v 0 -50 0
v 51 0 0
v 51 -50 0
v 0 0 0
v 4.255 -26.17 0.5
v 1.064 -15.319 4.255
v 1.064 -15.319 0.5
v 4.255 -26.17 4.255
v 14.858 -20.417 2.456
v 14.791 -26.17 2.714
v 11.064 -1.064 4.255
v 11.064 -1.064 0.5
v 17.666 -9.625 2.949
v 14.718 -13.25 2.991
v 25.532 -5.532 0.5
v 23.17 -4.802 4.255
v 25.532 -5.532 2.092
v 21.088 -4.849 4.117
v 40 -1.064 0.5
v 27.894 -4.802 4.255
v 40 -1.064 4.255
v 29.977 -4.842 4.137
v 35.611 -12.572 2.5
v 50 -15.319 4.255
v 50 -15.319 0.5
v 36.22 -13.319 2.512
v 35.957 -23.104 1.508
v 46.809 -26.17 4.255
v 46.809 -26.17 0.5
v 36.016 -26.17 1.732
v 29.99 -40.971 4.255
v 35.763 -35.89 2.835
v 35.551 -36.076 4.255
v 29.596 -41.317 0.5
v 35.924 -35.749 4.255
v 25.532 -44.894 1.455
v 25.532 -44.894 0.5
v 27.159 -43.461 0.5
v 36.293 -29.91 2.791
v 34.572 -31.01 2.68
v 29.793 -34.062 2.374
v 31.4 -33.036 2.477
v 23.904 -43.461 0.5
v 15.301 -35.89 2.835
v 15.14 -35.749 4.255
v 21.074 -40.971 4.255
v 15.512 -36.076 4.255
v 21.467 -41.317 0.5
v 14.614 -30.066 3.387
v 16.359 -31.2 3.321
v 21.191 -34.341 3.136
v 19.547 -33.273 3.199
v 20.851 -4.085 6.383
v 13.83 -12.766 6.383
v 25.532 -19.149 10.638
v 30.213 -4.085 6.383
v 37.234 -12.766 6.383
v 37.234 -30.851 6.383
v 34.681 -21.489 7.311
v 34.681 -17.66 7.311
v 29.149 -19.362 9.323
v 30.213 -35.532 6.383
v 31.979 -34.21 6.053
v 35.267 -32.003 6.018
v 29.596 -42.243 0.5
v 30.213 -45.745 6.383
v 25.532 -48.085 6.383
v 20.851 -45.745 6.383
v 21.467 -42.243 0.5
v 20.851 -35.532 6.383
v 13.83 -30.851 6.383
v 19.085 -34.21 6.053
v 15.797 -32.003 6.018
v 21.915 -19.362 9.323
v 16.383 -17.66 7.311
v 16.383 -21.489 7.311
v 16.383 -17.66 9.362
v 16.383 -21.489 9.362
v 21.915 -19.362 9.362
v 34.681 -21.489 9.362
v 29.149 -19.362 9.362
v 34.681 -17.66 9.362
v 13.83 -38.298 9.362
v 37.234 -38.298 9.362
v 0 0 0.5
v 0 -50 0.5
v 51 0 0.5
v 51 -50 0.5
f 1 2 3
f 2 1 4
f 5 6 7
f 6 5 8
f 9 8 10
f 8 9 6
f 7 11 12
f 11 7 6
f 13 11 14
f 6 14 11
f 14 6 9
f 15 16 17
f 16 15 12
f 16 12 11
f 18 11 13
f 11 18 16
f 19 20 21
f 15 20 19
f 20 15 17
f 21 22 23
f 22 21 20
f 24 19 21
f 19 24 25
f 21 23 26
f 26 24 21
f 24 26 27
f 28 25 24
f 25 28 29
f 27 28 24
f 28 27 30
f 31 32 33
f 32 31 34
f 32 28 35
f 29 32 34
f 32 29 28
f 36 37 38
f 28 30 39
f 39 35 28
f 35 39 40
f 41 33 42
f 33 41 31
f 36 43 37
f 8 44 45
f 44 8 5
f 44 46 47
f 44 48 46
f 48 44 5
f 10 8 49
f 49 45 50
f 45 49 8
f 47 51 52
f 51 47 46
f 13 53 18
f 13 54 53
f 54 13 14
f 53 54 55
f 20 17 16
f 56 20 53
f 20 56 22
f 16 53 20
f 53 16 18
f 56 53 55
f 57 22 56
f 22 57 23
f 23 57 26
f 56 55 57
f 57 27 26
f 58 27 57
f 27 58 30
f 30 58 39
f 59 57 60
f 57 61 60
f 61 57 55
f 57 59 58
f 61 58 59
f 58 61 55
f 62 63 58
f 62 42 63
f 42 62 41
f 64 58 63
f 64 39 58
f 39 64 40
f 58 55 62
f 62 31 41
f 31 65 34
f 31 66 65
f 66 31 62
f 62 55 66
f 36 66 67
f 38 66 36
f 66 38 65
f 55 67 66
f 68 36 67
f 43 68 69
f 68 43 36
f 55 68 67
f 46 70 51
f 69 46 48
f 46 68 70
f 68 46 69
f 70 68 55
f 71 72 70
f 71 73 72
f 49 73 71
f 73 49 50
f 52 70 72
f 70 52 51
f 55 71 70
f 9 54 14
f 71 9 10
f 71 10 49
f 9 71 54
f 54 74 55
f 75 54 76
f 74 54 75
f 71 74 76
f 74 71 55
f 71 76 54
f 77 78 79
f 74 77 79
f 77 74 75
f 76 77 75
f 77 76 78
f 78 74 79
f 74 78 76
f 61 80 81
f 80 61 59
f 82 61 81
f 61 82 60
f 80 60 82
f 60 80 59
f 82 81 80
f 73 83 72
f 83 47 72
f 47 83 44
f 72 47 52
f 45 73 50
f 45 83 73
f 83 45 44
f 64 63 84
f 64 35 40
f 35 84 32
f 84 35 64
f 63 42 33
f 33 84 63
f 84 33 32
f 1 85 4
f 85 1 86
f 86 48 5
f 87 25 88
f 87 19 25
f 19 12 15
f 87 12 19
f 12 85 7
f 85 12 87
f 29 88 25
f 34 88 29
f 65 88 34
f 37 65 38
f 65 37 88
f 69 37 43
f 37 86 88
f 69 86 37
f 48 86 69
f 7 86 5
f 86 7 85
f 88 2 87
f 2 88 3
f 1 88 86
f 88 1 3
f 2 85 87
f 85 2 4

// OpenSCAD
baseDepth = 100;
heartDepth = -baseDepth * 0.9;
headEdgeDepth = 50;
headCenterDepth = headEdgeDepth + 100;
eyeLow = headEdgeDepth + (headCenterDepth - headEdgeDepth) * 0.7;
eyeHigh = eyeLow;
tuskLow = headEdgeDepth * 0.7;
tuskHigh = eyeHigh;
targetWidth = 50;
maxX = 1175;
scaleFactor = targetWidth/maxX;

module triangle (x1, y1, x2, y2) {
    polyhedron(points = [
      [x1, y1, 0],
      [x2, y2, 0],
      [715,-615,0],
      [x1, y1, baseDepth],
      [x2, y2, baseDepth],
      [715,-615,baseDepth + heartDepth],
    ], faces = [
      [0, 1, 2], // bottom
      [0, 3, 4, 1],
      [0, 2, 5, 3],
      [1, 4, 5, 2],
      [3, 5, 4], // top
    ]);
};

module graphileheart() {
    triangle(100,-615,25,-360);
    triangle(25,-360,260,-25);
    triangle(260,-25,600,-130);
    triangle(600,-130,940,-25);
    triangle(940,-25,1175,-360);
    triangle(1175,-360,1100,-615);
    triangle(1100,-615,600,-1055);
    triangle(600,-1055,100,-615);
}
translate([0, -50, 0])
cube([51,50,0.5],false);


module etriangle (x1, y1, x2, y2) {
    polyhedron(points = [
      [x1, y1, baseDepth + headEdgeDepth],
      [x2, y2, baseDepth + headEdgeDepth],
      [600,-450,baseDepth - 1000],
      [600,-450,baseDepth + headCenterDepth]
    ], faces = [
      [0, 2, 1], // bottom
      [0, 1, 3], // top
      [0, 3, 2],
      [1, 2, 3]
    ]);
};

module elephanthead() {
    etriangle(325,-300,490,-96);
    etriangle(490,-96,710,-96);
    etriangle(710,-96,875,-300);

    etriangle(875,-300,875,-725);

    etriangle(875,-725,710,-835);
    etriangle(710,-835,710,-1075);
    etriangle(710,-1075,600,-1130);
    etriangle(600,-1130,490,-1075);
    etriangle(490,-1075,490,-835);
    etriangle(490,-835,325,-725);

    etriangle(325,-725,325,-300);
}


module eye (x1, y1, x2, y2, x3, y3) {
    polyhedron(points = [
      [x1, y1, baseDepth],
      [x2, y2, baseDepth],
      [x3, y3, baseDepth],
      [x1, y1, baseDepth + eyeHigh],
      [x2, y2, baseDepth + eyeLow],
      [x3, y3, baseDepth + eyeHigh],
    ], faces = [
      [0, 1, 2], // bottom
      [3, 5, 4], // top
      [0, 3, 4, 1],
      [0, 2, 5, 3],
      [1, 4, 5, 2],
    ]);
};

module tusk (x1, y1, x2, y2, x3, y3) {
    polyhedron(points = [
      [600,-450, -1000],
      [x1, y1, baseDepth + tuskLow],
      [x2, y2, baseDepth + tuskLow],
      [x3, y3, baseDepth + tuskHigh],
    ], faces = [
      [1, 2, 3], // top
      [0, 2, 1],
      [0, 1, 3],
      [0, 3, 2],
    ]);
};

module main() {
    union() {
    graphileheart();
    elephanthead();
    eye(385,-415,515,-455,385,-505);
    eye(815,-415,685,-455,815,-505);
    tusk(375,-740,460,-795,325,-900);
    tusk(825,-740,740,-795,875,-900);
    }
}

scale([scaleFactor, scaleFactor, scaleFactor]) {
    difference() {
        main();
        translate([0, -2000, -2000]) {
            cube([2000, 2000, 2000]);
        }
    }
}
